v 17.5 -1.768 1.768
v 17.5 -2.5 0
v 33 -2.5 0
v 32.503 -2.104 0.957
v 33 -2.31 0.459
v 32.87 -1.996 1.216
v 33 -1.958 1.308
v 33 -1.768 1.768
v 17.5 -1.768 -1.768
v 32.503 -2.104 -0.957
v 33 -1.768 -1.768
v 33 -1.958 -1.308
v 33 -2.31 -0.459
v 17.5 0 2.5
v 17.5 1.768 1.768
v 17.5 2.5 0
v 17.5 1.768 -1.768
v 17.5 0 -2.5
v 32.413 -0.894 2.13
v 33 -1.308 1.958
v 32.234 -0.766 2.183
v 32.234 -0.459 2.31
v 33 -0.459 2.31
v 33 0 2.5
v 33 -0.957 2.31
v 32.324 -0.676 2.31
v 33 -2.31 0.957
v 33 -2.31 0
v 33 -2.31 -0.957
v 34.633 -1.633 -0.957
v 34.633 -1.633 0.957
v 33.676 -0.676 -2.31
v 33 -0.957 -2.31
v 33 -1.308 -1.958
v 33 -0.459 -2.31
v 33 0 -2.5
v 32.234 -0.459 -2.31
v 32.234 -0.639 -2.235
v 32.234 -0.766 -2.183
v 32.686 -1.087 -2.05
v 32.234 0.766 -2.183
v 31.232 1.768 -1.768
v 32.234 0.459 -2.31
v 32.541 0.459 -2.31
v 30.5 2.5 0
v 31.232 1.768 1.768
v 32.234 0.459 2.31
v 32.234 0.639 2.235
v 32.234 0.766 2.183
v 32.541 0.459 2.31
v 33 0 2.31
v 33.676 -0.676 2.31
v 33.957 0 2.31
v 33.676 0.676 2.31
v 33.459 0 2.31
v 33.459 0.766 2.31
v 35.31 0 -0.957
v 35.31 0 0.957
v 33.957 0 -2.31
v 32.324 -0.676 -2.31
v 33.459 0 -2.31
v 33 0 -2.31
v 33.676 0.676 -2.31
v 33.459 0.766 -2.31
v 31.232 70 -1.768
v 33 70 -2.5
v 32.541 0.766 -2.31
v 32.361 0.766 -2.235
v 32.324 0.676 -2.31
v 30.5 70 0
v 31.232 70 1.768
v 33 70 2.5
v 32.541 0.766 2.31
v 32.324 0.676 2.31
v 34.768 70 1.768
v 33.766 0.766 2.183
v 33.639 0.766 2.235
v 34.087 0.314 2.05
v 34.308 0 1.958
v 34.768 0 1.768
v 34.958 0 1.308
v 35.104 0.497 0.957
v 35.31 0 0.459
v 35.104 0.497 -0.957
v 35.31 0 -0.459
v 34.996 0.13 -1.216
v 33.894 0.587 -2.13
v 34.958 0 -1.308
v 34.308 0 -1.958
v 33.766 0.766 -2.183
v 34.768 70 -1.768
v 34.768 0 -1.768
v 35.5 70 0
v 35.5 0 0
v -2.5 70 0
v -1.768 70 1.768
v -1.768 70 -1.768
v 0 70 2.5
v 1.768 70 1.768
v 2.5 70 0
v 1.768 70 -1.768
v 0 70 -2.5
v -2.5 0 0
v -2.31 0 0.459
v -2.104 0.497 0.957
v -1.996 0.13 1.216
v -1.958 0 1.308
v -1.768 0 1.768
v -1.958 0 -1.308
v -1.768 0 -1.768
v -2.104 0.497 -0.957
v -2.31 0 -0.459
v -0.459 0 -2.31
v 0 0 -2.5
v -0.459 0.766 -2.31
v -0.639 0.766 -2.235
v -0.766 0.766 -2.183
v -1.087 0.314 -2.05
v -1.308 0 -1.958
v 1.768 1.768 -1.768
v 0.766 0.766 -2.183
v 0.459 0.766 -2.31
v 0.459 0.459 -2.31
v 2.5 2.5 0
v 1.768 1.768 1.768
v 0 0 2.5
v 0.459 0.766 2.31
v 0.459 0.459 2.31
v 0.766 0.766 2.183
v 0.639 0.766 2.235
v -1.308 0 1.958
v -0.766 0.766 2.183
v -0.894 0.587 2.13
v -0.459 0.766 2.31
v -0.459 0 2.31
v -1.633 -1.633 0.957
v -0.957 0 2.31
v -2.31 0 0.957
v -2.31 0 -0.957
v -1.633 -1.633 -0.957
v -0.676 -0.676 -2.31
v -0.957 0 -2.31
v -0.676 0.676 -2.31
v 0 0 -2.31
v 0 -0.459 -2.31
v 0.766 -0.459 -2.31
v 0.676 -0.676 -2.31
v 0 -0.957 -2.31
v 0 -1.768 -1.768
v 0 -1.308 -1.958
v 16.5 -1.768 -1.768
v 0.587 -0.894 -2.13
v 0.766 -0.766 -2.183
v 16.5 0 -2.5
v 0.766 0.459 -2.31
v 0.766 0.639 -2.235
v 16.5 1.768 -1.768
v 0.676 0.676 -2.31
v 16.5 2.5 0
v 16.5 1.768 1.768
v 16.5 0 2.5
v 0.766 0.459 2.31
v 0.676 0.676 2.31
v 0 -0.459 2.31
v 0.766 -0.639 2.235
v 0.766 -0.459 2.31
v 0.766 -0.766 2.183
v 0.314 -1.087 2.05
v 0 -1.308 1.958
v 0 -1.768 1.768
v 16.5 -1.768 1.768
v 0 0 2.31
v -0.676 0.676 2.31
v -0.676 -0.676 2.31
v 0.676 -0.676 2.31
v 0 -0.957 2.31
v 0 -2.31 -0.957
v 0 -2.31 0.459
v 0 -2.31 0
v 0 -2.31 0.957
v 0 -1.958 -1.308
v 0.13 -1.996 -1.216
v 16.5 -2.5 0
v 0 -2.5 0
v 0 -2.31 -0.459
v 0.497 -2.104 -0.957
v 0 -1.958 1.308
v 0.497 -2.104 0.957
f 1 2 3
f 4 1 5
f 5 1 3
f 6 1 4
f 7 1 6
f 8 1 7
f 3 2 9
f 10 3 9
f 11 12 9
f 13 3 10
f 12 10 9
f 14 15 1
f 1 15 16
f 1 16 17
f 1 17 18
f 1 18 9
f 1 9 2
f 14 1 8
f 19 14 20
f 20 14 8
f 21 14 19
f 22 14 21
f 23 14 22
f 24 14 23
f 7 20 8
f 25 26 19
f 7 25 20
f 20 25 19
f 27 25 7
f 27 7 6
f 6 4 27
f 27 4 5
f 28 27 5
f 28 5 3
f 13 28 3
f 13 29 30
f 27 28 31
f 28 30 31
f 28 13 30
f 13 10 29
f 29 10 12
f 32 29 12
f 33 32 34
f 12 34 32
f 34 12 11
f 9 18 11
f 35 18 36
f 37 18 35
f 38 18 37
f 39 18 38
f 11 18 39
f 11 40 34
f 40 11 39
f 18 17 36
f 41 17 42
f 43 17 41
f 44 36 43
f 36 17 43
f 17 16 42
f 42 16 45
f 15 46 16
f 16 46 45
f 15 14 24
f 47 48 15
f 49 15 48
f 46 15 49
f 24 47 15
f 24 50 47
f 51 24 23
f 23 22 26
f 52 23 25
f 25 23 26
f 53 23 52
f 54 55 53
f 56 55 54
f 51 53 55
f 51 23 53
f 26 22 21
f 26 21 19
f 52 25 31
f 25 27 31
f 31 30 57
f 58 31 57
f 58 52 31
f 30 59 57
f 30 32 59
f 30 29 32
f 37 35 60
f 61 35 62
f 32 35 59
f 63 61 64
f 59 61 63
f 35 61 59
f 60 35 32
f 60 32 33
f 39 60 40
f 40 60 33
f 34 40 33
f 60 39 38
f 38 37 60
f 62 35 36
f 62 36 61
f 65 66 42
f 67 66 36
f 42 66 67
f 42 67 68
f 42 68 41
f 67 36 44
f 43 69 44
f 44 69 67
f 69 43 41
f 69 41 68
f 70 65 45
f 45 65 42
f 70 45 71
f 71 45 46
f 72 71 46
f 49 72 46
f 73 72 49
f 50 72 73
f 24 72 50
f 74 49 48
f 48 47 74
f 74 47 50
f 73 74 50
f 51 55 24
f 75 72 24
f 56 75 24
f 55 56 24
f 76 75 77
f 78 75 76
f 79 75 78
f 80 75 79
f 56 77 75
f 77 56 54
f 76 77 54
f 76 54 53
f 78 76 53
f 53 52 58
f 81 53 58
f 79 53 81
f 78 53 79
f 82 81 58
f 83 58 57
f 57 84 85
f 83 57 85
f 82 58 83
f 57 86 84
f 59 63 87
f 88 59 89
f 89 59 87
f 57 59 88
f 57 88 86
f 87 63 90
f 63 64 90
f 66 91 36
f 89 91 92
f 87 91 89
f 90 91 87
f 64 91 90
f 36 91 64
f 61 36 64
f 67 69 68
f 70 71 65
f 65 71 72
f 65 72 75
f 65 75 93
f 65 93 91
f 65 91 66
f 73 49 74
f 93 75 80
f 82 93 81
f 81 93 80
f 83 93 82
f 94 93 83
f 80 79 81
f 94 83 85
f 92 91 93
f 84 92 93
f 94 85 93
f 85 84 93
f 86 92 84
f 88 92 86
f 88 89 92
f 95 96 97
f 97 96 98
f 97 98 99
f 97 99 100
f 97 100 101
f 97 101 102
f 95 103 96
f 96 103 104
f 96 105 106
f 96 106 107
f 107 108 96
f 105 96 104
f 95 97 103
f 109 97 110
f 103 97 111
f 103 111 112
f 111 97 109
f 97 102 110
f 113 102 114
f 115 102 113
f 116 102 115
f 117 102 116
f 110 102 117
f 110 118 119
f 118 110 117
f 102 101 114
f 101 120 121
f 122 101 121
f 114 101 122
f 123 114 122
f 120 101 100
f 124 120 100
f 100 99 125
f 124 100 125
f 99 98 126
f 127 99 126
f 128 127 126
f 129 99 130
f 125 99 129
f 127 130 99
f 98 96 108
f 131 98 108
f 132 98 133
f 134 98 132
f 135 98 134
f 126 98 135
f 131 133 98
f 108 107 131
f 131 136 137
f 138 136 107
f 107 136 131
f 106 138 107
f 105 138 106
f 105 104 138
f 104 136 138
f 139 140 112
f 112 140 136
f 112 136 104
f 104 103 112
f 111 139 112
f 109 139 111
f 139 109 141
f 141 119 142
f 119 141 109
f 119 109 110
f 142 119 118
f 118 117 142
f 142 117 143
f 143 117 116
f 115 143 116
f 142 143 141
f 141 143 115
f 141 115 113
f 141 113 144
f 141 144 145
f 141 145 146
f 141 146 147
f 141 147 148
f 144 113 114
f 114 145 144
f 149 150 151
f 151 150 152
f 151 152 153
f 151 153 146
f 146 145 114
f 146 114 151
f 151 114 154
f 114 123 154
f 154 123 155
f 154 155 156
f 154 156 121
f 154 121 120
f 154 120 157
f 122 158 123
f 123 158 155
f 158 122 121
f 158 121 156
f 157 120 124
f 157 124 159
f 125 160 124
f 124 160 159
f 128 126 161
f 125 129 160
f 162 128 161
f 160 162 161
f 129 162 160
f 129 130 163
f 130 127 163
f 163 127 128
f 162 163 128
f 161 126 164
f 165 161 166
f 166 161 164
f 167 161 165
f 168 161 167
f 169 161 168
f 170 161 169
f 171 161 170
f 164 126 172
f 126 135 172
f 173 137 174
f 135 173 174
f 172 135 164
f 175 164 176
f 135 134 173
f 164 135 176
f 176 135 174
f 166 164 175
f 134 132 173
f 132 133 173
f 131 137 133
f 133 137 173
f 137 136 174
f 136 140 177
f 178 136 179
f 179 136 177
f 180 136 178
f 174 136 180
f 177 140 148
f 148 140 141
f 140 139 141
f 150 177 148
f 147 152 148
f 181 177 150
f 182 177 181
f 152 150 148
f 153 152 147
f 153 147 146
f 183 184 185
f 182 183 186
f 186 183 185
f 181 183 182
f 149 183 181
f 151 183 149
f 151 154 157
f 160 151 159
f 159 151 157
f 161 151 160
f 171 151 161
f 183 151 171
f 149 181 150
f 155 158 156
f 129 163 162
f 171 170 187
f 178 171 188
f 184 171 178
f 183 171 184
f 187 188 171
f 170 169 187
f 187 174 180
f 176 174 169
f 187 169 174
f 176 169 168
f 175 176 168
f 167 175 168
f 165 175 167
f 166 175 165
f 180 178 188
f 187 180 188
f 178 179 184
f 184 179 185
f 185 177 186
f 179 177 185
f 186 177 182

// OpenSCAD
 
difference(){
union(){
rotate([90,90,0]) translate([0,33,-70]) cylinder(70,2.5,2.5);
 rotate([90,90,0]) translate([0,0,-70]) cylinder(70,2.5,2.5);

sphere(2.5);
 translate([33,0,0]) sphere(2.5);

rotate([0,90,0]) translate([0,0,0]) cylinder(33,2.5,2.5);
}
 translate([16.5,-3,-3]) cube([1,7,7]);
}
